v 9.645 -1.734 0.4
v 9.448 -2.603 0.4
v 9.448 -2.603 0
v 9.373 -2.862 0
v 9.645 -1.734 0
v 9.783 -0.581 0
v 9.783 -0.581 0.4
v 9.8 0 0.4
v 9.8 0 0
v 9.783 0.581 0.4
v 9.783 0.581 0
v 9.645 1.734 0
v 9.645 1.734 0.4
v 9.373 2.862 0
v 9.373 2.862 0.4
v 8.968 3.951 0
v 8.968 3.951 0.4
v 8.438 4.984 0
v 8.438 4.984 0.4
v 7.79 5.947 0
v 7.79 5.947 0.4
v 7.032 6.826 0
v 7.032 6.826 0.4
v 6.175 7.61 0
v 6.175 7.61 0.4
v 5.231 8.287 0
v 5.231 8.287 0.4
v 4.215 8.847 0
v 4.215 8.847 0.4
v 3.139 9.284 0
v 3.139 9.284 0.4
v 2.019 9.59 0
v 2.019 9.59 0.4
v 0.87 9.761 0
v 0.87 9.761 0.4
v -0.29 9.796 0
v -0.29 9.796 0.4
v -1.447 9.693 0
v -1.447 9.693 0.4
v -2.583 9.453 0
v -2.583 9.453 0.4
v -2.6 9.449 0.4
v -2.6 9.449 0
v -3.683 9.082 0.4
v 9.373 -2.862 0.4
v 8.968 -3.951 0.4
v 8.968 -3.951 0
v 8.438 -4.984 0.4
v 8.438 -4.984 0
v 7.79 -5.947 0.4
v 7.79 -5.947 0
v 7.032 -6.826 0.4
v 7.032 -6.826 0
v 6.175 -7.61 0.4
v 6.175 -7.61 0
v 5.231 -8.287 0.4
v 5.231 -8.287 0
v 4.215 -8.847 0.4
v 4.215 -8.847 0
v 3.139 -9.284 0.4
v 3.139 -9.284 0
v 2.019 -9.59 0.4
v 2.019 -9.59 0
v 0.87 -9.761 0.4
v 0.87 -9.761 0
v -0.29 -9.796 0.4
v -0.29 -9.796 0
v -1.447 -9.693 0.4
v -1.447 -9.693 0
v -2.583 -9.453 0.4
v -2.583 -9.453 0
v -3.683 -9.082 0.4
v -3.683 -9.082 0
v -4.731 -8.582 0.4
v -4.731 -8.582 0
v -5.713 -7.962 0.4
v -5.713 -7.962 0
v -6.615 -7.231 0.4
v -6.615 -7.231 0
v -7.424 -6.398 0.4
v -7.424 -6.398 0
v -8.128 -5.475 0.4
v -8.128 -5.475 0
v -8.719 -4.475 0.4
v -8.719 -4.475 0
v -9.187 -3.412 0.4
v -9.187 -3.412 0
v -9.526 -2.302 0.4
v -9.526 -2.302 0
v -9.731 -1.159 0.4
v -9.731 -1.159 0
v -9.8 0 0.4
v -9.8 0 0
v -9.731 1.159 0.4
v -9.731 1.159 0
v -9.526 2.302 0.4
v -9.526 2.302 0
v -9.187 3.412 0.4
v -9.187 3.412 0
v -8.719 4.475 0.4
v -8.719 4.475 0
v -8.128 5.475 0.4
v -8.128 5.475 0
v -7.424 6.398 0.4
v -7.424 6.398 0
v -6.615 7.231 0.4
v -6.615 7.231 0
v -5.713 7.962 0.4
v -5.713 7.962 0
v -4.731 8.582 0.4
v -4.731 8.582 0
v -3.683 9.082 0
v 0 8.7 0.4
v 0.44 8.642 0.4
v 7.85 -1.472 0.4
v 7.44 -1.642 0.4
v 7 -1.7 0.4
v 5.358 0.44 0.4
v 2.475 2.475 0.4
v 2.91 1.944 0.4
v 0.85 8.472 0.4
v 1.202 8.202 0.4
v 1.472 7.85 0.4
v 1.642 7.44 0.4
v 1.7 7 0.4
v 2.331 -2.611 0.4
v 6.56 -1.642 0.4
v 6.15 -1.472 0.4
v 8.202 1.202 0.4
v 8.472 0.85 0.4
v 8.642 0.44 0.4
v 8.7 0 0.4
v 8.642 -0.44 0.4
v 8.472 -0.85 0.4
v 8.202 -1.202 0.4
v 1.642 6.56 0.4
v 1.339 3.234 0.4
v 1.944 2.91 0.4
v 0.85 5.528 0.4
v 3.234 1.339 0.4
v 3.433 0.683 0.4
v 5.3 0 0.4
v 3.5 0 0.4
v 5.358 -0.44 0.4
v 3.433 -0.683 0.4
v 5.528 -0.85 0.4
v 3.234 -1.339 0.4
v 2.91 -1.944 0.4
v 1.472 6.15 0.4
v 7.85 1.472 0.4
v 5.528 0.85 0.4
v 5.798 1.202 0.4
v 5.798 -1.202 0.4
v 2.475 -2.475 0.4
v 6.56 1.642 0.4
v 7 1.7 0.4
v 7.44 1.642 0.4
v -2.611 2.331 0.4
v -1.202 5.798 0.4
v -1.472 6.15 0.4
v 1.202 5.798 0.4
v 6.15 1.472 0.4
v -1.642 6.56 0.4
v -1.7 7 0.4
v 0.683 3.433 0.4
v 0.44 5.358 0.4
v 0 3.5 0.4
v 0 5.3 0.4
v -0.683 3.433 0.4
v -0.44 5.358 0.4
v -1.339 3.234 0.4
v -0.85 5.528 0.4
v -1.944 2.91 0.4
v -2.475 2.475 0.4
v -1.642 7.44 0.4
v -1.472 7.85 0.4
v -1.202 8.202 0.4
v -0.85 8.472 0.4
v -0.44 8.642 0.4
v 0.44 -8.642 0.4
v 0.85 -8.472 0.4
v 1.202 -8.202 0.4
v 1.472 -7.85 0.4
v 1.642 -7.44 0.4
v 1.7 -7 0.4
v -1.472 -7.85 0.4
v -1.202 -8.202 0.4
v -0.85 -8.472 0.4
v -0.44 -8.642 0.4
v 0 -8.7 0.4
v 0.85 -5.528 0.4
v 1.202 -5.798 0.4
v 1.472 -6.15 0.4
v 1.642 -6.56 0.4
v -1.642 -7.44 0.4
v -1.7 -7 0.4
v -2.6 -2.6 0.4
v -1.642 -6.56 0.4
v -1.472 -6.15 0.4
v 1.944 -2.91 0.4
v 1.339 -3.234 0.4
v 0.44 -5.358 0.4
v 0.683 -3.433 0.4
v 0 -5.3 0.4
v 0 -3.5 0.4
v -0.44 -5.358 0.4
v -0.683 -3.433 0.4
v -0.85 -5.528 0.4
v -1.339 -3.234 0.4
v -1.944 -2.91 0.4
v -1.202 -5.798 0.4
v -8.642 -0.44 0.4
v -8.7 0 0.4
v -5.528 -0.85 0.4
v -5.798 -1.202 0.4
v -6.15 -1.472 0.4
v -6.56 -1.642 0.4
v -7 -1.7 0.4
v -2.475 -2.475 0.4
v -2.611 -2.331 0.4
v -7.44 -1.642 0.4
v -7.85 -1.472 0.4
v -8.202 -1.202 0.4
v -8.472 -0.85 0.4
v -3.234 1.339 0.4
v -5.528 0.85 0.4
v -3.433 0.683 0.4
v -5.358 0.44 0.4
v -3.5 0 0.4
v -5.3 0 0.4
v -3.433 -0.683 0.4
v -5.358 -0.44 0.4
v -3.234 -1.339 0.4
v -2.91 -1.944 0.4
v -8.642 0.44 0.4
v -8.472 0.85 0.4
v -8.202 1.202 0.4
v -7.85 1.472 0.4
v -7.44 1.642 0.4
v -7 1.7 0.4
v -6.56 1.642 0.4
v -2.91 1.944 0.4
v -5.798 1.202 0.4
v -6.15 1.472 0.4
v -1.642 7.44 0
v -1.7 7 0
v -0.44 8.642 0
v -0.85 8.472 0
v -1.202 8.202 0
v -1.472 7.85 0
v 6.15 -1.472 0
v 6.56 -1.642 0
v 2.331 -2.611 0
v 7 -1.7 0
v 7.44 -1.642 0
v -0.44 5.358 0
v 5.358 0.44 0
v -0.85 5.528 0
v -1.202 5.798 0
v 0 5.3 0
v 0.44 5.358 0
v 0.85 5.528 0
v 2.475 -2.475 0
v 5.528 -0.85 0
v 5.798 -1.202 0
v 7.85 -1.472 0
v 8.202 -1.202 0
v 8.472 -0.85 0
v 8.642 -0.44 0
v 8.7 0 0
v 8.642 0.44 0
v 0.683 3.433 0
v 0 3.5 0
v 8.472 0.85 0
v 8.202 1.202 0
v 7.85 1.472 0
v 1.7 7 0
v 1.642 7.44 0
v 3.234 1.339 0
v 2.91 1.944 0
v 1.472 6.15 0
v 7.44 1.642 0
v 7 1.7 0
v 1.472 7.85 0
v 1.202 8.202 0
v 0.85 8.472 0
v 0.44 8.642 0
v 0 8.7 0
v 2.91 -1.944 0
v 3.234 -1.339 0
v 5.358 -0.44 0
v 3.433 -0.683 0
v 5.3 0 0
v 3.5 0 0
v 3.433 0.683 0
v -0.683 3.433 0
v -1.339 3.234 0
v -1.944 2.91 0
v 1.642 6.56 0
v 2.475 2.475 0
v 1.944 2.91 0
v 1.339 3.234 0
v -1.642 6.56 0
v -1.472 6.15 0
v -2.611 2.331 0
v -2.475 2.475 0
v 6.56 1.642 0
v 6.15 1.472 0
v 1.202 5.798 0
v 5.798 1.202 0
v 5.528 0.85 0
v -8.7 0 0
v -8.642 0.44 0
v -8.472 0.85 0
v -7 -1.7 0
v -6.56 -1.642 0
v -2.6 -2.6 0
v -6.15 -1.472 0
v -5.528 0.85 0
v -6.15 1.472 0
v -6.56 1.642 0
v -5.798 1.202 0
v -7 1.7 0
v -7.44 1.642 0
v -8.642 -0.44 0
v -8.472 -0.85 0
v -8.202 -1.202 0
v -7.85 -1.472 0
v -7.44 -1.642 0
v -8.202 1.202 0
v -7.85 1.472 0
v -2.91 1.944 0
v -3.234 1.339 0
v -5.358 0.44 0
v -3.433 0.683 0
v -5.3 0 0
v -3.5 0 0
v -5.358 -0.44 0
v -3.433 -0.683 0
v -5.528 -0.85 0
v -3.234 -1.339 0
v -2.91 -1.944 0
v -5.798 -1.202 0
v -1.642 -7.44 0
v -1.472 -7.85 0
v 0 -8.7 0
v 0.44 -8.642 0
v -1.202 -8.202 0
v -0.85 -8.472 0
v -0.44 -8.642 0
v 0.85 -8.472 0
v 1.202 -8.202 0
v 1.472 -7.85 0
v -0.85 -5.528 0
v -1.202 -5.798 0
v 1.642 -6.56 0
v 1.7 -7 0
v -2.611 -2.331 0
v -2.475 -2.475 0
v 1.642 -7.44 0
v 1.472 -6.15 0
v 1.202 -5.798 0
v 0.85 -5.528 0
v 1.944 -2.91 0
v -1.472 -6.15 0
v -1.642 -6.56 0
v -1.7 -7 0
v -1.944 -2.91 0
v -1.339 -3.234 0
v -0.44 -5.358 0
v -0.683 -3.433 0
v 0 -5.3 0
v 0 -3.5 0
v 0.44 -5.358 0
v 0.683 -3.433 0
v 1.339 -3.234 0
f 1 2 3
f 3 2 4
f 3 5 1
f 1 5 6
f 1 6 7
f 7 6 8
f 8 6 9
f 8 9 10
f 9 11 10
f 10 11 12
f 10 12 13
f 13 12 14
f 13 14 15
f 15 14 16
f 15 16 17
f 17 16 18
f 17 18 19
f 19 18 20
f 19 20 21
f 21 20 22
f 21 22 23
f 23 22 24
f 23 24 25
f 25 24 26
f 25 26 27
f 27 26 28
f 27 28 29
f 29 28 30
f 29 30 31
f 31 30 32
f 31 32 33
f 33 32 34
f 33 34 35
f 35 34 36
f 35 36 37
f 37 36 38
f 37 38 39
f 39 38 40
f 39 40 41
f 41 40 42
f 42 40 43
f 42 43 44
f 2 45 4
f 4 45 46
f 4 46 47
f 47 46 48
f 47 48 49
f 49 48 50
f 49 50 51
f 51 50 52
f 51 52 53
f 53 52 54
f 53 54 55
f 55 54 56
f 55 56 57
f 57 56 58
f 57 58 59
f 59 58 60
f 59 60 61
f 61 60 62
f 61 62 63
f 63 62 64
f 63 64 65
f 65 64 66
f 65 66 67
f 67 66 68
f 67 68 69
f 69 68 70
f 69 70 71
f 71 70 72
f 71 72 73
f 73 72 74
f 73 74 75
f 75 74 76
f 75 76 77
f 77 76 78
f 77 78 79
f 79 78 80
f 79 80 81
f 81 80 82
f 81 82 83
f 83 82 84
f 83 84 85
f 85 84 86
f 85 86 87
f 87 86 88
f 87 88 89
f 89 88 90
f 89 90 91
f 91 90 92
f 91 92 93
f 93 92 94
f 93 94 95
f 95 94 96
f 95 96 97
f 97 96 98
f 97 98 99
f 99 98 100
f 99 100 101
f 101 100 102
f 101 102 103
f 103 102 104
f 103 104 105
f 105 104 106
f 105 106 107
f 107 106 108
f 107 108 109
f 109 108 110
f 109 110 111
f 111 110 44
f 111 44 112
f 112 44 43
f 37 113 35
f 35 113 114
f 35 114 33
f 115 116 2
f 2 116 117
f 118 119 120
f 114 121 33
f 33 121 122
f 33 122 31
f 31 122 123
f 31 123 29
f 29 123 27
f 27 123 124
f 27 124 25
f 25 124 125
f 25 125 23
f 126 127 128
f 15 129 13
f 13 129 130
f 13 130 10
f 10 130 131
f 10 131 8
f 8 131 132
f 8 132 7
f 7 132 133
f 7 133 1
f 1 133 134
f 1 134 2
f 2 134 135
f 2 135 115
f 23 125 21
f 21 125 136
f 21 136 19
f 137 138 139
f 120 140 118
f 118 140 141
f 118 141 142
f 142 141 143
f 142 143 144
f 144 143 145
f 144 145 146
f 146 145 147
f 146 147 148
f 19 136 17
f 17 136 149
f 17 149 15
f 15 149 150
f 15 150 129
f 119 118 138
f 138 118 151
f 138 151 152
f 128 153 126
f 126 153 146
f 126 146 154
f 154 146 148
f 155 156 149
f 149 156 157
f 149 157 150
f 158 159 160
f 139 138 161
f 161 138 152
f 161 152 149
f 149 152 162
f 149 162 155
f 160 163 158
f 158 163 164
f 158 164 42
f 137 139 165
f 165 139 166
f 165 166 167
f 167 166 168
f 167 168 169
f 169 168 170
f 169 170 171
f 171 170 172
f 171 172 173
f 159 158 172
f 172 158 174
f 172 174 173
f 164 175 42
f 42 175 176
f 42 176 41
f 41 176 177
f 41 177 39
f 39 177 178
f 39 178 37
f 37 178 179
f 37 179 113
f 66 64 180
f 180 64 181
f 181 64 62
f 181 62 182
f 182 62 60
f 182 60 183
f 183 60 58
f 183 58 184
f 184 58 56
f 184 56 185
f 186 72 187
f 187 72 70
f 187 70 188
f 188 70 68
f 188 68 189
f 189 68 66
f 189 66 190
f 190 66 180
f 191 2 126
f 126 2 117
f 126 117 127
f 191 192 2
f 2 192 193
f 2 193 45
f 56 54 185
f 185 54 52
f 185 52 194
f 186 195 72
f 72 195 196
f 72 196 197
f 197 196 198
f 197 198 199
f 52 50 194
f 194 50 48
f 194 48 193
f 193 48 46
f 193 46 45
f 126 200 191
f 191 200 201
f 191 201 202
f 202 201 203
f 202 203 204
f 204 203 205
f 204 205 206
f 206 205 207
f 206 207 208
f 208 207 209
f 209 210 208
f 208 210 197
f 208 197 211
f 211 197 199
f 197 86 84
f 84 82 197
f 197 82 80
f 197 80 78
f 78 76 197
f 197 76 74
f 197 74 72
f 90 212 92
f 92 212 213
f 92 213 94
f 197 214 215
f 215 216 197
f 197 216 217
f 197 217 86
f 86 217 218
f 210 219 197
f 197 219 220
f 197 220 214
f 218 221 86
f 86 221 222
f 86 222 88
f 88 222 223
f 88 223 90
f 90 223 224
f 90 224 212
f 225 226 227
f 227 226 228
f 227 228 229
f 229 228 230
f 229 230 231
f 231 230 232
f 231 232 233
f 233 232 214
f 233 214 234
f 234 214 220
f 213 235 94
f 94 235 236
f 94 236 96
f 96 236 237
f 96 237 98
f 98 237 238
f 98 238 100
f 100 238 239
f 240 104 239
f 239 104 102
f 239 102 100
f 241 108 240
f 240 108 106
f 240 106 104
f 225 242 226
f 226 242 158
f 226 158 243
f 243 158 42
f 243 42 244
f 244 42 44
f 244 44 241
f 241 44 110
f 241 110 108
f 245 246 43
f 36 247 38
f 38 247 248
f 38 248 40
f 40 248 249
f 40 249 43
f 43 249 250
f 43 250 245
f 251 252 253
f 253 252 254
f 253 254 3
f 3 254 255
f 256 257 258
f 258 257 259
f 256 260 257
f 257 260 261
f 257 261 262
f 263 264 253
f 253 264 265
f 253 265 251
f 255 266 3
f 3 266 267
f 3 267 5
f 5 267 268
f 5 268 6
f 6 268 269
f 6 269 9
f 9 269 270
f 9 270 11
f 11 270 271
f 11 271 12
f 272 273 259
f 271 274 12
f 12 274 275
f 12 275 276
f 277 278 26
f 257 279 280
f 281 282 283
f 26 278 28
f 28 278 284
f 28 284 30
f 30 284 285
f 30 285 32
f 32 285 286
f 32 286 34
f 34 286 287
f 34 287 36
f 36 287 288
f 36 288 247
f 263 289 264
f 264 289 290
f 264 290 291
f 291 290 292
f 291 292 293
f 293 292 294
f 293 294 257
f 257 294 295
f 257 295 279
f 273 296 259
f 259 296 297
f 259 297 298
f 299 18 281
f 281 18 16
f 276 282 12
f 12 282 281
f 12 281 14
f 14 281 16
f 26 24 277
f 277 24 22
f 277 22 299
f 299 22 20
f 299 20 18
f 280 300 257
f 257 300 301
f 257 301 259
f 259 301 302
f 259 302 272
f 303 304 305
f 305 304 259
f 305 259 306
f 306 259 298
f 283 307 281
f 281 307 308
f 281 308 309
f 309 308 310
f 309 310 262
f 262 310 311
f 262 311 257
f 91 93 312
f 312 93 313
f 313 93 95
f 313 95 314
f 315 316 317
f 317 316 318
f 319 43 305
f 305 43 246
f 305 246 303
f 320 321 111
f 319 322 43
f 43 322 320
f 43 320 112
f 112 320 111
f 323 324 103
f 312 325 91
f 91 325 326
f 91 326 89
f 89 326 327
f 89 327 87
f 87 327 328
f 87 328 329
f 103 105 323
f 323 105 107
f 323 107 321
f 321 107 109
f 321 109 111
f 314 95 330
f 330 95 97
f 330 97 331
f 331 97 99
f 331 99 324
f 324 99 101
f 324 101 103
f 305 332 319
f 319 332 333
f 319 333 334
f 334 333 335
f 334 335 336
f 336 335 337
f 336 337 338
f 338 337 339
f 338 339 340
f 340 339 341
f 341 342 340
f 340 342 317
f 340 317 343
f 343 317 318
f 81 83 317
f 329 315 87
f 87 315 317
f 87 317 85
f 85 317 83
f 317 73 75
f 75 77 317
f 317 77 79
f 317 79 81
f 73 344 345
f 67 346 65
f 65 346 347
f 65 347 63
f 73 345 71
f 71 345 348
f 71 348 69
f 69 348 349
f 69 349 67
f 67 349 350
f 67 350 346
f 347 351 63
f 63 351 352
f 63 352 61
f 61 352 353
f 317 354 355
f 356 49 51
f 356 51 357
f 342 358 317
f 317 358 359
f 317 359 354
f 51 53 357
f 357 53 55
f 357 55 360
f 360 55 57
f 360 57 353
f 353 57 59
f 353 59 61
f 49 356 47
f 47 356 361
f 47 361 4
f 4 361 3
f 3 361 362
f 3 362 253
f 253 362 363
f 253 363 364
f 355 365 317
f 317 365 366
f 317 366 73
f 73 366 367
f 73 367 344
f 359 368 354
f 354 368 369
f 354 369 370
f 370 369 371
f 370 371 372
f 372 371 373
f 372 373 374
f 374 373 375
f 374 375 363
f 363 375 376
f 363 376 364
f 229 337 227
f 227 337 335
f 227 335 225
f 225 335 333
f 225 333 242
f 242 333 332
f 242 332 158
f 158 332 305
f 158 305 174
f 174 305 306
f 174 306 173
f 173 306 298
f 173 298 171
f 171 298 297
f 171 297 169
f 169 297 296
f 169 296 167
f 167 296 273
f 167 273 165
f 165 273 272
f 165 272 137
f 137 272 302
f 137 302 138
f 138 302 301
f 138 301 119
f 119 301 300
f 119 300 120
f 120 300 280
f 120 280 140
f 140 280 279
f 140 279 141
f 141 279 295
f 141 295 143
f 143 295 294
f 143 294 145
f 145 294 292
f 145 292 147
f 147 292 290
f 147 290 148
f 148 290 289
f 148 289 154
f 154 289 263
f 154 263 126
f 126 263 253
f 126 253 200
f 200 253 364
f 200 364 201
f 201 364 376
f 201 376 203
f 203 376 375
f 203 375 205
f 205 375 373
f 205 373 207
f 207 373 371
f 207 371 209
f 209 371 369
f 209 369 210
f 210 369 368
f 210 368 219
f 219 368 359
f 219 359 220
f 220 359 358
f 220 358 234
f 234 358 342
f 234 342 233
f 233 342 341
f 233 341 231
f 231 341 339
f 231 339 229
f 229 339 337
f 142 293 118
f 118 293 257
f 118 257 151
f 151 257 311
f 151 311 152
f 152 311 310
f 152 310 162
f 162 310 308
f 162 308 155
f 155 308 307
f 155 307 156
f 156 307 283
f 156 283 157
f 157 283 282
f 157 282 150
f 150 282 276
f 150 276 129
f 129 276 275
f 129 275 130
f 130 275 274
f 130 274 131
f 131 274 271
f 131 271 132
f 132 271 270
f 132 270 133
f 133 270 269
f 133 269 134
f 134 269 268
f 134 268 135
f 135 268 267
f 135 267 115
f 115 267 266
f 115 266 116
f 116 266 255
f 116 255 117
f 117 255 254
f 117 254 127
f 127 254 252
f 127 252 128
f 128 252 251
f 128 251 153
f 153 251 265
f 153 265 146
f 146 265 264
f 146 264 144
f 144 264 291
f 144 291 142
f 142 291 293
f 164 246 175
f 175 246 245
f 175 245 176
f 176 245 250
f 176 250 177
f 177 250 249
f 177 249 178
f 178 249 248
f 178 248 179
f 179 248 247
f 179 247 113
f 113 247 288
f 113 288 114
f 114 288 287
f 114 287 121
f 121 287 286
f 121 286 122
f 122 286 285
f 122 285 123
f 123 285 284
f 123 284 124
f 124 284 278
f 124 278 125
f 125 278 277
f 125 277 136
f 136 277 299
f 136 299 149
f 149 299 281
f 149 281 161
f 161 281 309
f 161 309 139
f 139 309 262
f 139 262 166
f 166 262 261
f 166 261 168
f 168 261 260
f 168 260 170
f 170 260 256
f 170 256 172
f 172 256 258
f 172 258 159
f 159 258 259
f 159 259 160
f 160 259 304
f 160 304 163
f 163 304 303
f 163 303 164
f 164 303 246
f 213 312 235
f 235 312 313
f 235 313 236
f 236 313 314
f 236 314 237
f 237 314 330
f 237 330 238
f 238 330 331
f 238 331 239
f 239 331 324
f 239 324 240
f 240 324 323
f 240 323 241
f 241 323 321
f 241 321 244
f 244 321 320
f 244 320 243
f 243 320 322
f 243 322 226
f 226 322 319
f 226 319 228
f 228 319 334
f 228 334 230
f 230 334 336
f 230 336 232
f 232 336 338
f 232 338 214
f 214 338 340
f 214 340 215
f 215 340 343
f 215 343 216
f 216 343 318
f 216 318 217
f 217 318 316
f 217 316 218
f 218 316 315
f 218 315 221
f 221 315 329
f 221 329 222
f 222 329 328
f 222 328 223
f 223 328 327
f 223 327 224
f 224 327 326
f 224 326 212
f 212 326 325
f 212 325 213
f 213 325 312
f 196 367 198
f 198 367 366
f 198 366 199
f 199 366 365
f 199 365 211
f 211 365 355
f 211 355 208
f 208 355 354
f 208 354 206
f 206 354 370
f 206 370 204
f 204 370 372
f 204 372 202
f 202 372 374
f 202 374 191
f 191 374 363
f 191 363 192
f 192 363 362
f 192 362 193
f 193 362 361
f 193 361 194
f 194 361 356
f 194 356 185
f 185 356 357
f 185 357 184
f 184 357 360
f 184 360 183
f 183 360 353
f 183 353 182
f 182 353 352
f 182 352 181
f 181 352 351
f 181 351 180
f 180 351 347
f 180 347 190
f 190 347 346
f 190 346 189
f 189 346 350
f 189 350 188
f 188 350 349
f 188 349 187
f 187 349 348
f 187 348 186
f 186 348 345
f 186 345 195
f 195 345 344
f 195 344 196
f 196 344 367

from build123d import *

# Parameters (mm, degrees)
S_CYL1_R     = 9.8
BOSS_1_DEPTH = 0.4
S_HOLE2_R    = 3.5
HOLE_2_DEPTH = 0.6
S_HOLE3_R    = 1.7
HOLE_3_DEPTH = 0.6
S_HOLE4_R    = 1.7
HOLE_4_DEPTH = 0.6
S_HOLE5_R    = 1.7
HOLE_5_DEPTH = 0.6
S_HOLE6_R    = 1.7
HOLE_6_DEPTH = 0.6


with BuildPart() as part:
    # S_cyl1 → Boss_1 (new body)
    with BuildSketch(Plane.XY):
        Circle(S_CYL1_R)
    extrude(amount=BOSS_1_DEPTH)

    # S_hole2 → Hole_2 (cut)
    with BuildSketch(Plane.XY.offset(-0.1)):
        Circle(S_HOLE2_R)
    extrude(amount=HOLE_2_DEPTH, mode=Mode.SUBTRACT)

    # S_hole3 → Hole_3 (cut)
    with BuildSketch(Plane.XY.offset(-0.1)):
        with Locations((7, 0)):
            Circle(S_HOLE3_R)
    extrude(amount=HOLE_3_DEPTH, mode=Mode.SUBTRACT)

    # S_hole4 → Hole_4 (cut)
    with BuildSketch(Plane.XY.offset(-0.1)):
        with Locations((0, 7)):
            Circle(S_HOLE4_R)
    extrude(amount=HOLE_4_DEPTH, mode=Mode.SUBTRACT)

    # S_hole5 → Hole_5 (cut)
    with BuildSketch(Plane.XY.offset(-0.1)):
        with Locations((-7, 0)):
            Circle(S_HOLE5_R)
    extrude(amount=HOLE_5_DEPTH, mode=Mode.SUBTRACT)

    # S_hole6 → Hole_6 (cut)
    with BuildSketch(Plane.XY.offset(-0.1)):
        with Locations((0, -7)):
            Circle(S_HOLE6_R)
    extrude(amount=HOLE_6_DEPTH, mode=Mode.SUBTRACT)


solid = part.part
